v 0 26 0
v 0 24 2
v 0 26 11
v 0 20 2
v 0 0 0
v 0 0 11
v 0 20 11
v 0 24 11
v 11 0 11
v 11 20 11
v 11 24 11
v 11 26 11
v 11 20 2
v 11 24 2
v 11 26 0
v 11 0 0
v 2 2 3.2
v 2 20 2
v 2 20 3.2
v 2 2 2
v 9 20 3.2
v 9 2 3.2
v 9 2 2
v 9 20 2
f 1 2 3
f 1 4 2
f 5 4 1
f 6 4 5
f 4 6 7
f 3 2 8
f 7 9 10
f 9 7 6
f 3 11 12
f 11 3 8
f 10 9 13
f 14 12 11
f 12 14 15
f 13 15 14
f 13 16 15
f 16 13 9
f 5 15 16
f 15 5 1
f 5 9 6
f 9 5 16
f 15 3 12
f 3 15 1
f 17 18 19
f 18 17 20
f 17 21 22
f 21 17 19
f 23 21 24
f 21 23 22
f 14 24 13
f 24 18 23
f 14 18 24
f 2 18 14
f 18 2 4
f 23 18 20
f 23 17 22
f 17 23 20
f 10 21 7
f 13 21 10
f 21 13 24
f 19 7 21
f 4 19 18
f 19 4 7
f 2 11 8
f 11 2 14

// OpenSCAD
// ================================
// SIURELL - MÒDUL XIULET FUNCIONAL
// ================================

$fn = 80;

// ---------- PARÀMETRES CRÍTICS ----------
windway_w = 7;      // amplada conducte (mm)
windway_h = 1.2;    // alçada conducte (mm)  <-- ajustar en iteracions
windway_l = 18;     // longitud conducte (mm)

labium_h = 5;
labium_angle = 90;  // graus (85–90)

// ---------- COS BASE ----------
module bloc_base() {
    cube([windway_w + 4, windway_l + 8, labium_h + 6]);
}

// ---------- CONDUCTE D'AIRE ----------
module windway() {
    translate([2, 2, 2])
        cube([windway_w, windway_l, windway_h]);
}

// ---------- BISSELL (LABIUM) ----------
module labium() {
    translate([2, windway_l + 2, 2])
        rotate([labium_angle, 0, 0])
        cube([windway_w, 0.8, labium_h]);
}

// ---------- SORTIDA ----------
module air_exit() {
    translate([0, windway_l + 2, 2])
        cube([windway_w + 4, 4, labium_h + 4]);
}

// ---------- MÒDUL FINAL ----------
difference() {
    bloc_base();
    windway();
    labium();
    air_exit();
}
